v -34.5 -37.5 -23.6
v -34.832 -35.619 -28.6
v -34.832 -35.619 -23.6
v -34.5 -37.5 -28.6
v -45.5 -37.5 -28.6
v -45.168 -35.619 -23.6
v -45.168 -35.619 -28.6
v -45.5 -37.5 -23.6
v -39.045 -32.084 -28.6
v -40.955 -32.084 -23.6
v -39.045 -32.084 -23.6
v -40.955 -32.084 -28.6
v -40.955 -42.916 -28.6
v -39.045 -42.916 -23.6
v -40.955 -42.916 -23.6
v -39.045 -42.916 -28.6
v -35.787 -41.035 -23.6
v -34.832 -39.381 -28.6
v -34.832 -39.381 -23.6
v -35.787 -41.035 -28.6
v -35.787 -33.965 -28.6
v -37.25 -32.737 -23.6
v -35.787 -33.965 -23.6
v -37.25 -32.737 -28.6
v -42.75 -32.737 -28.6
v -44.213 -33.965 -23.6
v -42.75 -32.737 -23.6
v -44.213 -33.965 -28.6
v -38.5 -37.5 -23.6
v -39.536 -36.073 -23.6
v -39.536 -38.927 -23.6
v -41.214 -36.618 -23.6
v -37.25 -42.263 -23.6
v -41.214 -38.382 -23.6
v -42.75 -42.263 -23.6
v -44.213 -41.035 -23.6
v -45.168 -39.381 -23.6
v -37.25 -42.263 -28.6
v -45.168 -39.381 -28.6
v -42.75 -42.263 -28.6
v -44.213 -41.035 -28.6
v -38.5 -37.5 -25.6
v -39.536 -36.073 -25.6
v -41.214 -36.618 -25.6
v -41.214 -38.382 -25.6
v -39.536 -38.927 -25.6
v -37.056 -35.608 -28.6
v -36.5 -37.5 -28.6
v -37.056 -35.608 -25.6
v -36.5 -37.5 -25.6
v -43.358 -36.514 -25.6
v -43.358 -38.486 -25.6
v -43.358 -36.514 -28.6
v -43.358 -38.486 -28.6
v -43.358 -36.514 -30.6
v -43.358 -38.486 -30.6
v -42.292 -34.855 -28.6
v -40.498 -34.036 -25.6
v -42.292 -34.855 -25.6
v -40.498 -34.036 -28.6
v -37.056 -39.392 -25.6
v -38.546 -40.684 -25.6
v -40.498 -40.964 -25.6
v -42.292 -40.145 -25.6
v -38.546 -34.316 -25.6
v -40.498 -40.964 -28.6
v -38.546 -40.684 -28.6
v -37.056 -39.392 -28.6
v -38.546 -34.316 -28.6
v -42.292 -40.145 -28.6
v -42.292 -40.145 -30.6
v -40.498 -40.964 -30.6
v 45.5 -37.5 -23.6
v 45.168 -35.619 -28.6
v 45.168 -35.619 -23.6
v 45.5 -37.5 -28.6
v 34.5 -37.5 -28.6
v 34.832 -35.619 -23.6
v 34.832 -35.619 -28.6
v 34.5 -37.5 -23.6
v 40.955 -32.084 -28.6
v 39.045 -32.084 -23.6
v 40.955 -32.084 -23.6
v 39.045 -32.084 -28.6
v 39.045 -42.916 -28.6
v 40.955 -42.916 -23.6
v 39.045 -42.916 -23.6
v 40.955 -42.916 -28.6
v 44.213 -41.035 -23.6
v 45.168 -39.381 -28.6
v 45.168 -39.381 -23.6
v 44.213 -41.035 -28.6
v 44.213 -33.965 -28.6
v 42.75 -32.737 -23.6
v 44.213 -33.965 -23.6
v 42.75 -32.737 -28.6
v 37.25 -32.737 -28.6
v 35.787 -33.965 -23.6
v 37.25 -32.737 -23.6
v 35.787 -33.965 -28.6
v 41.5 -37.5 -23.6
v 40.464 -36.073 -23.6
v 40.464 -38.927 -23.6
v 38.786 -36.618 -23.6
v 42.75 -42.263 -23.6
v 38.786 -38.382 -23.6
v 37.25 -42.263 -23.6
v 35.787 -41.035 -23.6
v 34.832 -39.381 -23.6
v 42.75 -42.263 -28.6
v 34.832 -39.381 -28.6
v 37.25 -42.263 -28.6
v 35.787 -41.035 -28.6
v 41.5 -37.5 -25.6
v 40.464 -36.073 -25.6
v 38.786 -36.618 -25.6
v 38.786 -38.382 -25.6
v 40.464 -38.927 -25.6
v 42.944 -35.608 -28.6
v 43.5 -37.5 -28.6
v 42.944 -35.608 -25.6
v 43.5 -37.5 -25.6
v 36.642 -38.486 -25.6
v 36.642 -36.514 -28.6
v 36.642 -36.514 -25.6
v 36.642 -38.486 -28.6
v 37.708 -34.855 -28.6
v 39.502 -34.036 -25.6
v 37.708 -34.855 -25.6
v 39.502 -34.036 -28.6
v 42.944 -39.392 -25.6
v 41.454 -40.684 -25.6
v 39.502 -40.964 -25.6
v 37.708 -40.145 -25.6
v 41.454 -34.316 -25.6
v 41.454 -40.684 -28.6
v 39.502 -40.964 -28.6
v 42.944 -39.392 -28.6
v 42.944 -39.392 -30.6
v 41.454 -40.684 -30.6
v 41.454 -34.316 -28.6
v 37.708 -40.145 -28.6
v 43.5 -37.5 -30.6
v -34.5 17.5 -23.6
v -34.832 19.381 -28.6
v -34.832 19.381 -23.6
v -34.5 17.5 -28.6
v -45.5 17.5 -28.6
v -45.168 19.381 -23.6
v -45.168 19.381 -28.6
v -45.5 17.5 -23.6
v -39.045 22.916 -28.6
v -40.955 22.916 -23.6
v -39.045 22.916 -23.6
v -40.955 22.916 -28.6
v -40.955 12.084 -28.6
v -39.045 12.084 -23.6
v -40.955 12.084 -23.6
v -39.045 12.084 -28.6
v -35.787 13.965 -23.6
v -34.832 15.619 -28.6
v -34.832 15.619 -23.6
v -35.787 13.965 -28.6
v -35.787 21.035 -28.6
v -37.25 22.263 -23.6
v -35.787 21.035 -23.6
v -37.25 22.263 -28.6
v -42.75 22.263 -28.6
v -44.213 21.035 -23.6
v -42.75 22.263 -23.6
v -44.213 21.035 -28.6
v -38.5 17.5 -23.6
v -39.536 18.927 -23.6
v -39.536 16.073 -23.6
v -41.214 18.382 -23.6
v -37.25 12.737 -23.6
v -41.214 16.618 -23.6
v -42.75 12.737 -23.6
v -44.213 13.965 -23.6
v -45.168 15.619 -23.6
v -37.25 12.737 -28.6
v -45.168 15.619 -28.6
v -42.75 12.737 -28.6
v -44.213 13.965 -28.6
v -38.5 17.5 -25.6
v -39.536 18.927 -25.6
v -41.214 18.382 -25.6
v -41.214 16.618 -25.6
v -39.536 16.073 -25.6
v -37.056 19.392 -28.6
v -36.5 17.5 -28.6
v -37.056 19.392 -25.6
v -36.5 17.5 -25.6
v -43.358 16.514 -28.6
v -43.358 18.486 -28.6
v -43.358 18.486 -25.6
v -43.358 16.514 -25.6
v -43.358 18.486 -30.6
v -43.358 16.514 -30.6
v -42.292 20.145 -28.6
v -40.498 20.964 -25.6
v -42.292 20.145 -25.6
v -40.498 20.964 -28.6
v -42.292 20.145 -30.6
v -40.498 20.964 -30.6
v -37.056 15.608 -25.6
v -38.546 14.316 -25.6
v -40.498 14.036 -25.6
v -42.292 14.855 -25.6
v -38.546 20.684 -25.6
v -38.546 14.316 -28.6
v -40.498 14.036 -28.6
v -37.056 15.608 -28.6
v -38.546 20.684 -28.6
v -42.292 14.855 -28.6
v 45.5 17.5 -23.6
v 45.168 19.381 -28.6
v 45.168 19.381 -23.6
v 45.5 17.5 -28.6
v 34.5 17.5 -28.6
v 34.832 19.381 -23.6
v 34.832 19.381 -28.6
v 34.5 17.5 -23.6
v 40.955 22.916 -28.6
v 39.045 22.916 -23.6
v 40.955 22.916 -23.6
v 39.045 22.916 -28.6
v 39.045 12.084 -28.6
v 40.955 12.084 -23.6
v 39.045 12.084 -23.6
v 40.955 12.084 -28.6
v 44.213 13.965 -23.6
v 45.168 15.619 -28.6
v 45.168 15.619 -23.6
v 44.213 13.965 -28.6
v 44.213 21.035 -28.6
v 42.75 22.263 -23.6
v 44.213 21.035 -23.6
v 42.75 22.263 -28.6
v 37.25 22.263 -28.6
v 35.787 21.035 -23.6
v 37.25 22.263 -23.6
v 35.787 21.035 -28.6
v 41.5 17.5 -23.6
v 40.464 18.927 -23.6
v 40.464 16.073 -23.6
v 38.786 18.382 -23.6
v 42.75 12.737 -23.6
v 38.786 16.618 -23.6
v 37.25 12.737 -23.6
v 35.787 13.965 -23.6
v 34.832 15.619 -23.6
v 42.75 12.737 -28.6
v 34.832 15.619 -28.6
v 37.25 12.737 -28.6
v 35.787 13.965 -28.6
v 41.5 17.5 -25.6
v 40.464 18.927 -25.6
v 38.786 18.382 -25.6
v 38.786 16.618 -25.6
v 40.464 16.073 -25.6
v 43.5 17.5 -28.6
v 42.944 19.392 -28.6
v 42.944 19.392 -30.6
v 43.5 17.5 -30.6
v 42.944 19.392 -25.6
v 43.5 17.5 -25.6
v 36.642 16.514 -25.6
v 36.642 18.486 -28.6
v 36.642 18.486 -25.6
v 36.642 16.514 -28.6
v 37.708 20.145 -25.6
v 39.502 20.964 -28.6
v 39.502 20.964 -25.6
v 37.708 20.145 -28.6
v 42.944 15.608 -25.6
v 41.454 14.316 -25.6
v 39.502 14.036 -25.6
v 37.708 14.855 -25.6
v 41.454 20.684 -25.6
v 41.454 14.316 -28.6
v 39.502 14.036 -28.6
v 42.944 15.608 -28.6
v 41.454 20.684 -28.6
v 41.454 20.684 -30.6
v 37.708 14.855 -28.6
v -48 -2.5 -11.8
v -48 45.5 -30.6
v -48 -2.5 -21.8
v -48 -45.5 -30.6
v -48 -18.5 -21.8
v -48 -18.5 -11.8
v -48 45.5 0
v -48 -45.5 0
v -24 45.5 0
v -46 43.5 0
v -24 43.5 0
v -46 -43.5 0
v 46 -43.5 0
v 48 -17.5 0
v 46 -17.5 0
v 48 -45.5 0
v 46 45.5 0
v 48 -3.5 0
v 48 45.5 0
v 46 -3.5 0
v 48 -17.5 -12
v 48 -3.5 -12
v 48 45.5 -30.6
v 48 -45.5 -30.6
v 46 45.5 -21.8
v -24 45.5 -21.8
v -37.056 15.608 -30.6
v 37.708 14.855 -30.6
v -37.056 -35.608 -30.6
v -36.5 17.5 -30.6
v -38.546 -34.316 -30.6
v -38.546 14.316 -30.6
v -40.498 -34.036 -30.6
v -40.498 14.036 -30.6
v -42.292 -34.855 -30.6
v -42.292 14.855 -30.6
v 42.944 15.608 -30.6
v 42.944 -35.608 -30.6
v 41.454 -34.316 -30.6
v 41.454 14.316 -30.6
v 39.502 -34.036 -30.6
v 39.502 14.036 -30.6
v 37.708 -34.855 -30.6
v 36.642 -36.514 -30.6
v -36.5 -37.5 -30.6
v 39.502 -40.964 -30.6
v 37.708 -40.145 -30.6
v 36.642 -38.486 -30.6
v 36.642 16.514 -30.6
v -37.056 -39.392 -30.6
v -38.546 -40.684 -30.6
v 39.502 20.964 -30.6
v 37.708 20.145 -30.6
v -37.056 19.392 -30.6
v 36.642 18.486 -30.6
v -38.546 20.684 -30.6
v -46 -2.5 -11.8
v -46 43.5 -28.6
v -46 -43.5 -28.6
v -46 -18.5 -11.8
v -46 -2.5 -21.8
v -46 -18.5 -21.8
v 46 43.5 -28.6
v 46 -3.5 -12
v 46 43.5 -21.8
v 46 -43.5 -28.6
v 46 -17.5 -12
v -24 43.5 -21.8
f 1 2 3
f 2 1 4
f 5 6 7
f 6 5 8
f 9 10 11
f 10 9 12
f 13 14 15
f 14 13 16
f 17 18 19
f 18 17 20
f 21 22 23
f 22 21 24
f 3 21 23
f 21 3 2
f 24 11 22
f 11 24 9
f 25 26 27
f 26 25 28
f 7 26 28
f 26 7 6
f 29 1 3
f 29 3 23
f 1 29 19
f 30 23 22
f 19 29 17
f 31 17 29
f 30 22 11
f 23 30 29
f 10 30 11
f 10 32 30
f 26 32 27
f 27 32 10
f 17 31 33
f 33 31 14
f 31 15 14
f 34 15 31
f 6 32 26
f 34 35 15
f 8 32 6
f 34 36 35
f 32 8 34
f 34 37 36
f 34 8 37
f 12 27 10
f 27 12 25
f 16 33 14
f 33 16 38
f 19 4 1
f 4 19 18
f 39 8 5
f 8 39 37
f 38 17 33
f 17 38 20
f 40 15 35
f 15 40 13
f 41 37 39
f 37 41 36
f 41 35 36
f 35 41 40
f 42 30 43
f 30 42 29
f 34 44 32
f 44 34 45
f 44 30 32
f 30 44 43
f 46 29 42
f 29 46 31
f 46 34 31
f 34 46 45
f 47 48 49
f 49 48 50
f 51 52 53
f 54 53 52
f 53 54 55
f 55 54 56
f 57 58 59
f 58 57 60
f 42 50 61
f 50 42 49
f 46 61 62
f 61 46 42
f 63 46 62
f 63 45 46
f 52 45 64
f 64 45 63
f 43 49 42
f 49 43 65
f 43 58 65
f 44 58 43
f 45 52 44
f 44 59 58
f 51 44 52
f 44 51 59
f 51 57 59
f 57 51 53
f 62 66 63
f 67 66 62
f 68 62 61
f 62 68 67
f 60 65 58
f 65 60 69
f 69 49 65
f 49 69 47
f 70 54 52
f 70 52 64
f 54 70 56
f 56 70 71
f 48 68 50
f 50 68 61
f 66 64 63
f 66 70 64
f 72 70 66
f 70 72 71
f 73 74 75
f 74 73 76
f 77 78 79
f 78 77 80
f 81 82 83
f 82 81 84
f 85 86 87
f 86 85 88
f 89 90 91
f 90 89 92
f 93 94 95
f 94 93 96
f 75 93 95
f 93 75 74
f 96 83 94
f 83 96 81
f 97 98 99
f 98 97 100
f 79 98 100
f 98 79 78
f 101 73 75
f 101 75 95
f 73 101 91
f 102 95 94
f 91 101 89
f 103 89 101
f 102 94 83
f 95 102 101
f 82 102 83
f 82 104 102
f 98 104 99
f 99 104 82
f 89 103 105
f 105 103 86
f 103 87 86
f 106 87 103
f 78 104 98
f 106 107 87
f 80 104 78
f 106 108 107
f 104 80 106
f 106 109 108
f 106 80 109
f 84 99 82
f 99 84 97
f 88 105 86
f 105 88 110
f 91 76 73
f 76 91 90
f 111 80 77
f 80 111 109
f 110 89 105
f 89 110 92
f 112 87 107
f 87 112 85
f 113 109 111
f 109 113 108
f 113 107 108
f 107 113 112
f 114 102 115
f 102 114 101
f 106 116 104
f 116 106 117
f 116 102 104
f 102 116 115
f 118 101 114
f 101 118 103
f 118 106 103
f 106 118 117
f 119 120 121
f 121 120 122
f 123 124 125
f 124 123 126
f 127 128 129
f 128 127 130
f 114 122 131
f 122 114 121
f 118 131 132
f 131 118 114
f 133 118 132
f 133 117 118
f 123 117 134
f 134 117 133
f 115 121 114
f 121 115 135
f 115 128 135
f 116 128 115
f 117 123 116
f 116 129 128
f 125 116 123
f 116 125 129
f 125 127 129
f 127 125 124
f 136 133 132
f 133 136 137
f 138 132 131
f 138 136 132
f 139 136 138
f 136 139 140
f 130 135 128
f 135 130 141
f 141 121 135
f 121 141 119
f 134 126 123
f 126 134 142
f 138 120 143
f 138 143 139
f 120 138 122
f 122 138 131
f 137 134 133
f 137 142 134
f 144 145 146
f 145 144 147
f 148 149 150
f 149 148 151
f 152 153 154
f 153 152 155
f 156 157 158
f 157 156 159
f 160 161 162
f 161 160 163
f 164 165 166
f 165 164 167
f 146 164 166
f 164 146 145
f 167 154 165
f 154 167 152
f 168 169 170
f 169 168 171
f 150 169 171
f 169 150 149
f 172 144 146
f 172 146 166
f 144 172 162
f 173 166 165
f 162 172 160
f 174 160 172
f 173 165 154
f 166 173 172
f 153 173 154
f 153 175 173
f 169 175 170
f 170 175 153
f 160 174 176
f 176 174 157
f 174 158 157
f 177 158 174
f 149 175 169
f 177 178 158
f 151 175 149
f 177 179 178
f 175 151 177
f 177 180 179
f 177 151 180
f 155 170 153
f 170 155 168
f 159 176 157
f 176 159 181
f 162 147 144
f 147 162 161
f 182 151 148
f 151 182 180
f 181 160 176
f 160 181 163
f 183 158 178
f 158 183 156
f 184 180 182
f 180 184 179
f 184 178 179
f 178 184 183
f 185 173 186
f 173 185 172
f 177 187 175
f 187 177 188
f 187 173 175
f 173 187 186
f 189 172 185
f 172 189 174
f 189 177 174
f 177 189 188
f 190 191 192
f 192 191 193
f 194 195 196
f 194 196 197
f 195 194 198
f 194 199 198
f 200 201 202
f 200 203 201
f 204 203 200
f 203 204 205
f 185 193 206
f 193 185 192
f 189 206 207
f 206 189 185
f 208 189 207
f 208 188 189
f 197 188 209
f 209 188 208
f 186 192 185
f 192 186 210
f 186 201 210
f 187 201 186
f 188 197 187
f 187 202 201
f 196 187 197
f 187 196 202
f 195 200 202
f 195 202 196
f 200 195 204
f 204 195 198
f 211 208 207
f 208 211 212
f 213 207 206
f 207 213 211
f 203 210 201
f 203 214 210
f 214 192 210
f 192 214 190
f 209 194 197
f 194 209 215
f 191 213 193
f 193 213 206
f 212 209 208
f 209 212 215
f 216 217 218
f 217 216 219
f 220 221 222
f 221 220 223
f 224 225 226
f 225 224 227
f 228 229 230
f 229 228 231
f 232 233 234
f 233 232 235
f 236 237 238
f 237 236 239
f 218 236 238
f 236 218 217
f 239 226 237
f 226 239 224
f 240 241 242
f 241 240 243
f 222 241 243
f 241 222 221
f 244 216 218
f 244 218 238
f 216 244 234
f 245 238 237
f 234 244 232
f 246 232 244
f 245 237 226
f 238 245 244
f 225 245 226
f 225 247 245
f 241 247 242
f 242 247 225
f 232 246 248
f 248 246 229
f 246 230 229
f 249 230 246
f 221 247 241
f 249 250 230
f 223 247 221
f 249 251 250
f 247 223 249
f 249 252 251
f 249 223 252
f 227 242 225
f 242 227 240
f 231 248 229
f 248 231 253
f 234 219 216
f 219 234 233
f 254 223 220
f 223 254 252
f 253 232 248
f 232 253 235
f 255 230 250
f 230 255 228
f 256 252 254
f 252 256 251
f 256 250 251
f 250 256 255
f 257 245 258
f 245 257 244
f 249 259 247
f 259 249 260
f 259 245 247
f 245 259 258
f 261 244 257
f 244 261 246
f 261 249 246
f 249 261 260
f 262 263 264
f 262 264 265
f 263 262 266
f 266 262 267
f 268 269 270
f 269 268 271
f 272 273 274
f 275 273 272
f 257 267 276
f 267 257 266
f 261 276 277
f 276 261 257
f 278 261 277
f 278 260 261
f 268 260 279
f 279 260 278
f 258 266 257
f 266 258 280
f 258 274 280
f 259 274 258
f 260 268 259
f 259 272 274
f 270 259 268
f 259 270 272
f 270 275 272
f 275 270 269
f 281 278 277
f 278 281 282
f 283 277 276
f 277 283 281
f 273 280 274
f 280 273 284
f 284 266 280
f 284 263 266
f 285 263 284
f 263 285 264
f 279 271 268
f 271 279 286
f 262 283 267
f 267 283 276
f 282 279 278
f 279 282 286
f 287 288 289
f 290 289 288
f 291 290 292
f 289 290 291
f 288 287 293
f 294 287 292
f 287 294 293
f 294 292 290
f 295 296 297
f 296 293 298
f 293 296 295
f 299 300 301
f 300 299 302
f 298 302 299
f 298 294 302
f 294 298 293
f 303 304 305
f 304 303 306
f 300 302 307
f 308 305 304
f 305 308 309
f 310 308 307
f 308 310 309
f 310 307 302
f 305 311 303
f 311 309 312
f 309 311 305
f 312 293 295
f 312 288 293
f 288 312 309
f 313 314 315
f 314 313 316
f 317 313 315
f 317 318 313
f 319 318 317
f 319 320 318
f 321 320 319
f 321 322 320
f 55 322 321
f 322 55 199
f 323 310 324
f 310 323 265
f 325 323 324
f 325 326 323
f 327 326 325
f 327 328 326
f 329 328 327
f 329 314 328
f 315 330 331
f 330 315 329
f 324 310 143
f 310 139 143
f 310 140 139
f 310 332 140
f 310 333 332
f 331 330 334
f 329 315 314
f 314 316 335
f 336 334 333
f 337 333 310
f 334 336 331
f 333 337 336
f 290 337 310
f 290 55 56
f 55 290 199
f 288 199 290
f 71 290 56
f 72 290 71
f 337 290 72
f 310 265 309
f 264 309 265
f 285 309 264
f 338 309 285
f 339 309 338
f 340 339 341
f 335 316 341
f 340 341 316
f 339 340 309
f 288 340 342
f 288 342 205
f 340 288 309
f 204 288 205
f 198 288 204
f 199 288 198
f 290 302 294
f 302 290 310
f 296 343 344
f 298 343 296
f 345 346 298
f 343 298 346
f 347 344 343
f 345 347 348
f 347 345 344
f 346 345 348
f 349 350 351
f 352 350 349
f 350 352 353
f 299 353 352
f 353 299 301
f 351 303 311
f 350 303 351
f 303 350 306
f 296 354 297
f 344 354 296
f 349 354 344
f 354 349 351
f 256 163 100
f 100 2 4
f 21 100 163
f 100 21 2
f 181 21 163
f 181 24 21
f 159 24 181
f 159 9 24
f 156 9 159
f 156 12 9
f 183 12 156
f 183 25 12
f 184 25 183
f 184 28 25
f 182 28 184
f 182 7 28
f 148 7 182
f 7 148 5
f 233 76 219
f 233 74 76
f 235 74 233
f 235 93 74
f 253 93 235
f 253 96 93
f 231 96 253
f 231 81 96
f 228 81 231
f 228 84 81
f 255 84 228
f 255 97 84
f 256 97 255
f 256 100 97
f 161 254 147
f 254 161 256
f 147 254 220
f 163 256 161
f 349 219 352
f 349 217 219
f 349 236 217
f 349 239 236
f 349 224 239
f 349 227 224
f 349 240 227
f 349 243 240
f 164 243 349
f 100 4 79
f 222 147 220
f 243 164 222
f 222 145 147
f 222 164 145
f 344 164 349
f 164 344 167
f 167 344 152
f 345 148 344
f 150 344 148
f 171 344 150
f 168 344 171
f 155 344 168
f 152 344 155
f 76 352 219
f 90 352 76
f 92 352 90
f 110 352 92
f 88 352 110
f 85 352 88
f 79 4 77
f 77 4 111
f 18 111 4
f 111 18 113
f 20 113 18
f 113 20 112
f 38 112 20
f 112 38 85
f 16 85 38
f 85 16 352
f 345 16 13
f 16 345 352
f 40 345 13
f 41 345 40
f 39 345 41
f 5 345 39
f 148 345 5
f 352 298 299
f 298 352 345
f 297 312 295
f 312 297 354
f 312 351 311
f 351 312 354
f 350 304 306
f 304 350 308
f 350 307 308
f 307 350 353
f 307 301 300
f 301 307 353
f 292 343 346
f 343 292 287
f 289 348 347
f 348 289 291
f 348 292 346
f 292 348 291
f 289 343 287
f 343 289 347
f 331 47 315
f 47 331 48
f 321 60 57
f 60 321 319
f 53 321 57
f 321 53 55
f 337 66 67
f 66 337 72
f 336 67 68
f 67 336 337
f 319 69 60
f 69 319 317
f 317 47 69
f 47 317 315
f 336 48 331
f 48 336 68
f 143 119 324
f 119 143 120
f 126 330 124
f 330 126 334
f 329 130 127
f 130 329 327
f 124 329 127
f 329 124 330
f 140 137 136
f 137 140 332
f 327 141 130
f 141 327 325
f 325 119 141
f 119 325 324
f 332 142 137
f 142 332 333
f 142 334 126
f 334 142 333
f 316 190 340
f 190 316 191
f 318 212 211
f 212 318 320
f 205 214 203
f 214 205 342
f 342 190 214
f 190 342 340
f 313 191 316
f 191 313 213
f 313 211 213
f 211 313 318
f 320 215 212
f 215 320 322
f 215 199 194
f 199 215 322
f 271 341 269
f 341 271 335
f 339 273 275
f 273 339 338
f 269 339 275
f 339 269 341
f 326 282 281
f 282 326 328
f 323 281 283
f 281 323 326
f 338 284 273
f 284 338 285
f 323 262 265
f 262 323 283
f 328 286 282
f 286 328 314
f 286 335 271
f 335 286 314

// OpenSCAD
// nise8031 case bottom
// Base = top of 2nd floor
// Spacing of PCB = 20mm
// Shell wide = 2mm
// Bottom space = 5mm

// Bottom Outer

PCBW=1.8;
PCBS=20;
SPACE=5;
SHELLW=2.0;

difference() {



translate([-46-SHELLW,-43.5-SHELLW,-(PCBW*2+PCBS+SPACE+SHELLW)]) {    
cube([92+SHELLW*2,87+SHELLW*2,(PCBW*2+PCBS+SPACE+SHELLW)]);
};

{
translate([-46,-43.5,-(PCBW*2+PCBS+SPACE)]) {  
cube([92,87,(PCBW*2+PCBS+SPACE)]);
}

// FD connector
translate([-24,43.5,-(PCBW+PCBS)]) {       
cube([70,2,(PCBW+PCBS)]);    
}

// USB port

translate([46,-43.5+26,-12]) {
cube([2,14,12]);
}

translate([-46-SHELLW,-43.5+25,-(PCBW*2+PCBS+SPACE)+SPACE+PCBW]) {
cube([2,16,10]);
}

// SD card

// LINE OUT

//translate([-1,25,-2]) {
//
//cube([10,6,2]);
//
//}

// Bottom Holes

translate([-40,-37.5,-(PCBW*2+PCBS+SPACE+SHELLW)]) {
    
cylinder(5-SHELLW,3.5,3.5);    
       
}

translate([+40,-37.5,-(PCBW*2+PCBS+SPACE+SHELLW)]) {
    
cylinder(5-SHELLW,3.5,3.5);    
       
}

translate([-40,-37.5+55,-(PCBW*2+PCBS+SPACE+SHELLW)]) {
    
cylinder(5-SHELLW,3.5,3.5);    
       
}

translate([+40,-37.5+55,-(PCBW*2+PCBS+SPACE+SHELLW)]) {
    
cylinder(5-SHELLW,3.5,3.5);    
       
}

}
}

translate([-40,-37.5,-(PCBW*2+PCBS+SPACE)]) {

difference() {
    
cylinder(5,5.5,5.5);   
   {
    cylinder(5,1.5,1.5); 
    cylinder(5-SHELLW,3.5,3.5);     
   }
       
}
    
};

translate([+40,-37.5,-(PCBW*2+PCBS+SPACE)]) {

difference() {
    
cylinder(5,5.5,5.5);   
   {
    cylinder(5,1.5,1.5); 
    cylinder(5-SHELLW,3.5,3.5);     
   }
       
}
    
};

translate([-40,-37.5+55,-(PCBW*2+PCBS+SPACE)]) {

difference() {
    
cylinder(5,5.5,5.5);   
   {
    cylinder(5,1.5,1.5); 
    cylinder(5-SHELLW,3.5,3.5);     
   }
       
}
    
};

translate([+40,-37.5+55,-(PCBW*2+PCBS+SPACE)]) {

difference() {
    
cylinder(5,5.5,5.5);   
   {
    cylinder(5,1.5,1.5); 
    cylinder(5-SHELLW,3.5,3.5);     
   }
       
}
    
};
